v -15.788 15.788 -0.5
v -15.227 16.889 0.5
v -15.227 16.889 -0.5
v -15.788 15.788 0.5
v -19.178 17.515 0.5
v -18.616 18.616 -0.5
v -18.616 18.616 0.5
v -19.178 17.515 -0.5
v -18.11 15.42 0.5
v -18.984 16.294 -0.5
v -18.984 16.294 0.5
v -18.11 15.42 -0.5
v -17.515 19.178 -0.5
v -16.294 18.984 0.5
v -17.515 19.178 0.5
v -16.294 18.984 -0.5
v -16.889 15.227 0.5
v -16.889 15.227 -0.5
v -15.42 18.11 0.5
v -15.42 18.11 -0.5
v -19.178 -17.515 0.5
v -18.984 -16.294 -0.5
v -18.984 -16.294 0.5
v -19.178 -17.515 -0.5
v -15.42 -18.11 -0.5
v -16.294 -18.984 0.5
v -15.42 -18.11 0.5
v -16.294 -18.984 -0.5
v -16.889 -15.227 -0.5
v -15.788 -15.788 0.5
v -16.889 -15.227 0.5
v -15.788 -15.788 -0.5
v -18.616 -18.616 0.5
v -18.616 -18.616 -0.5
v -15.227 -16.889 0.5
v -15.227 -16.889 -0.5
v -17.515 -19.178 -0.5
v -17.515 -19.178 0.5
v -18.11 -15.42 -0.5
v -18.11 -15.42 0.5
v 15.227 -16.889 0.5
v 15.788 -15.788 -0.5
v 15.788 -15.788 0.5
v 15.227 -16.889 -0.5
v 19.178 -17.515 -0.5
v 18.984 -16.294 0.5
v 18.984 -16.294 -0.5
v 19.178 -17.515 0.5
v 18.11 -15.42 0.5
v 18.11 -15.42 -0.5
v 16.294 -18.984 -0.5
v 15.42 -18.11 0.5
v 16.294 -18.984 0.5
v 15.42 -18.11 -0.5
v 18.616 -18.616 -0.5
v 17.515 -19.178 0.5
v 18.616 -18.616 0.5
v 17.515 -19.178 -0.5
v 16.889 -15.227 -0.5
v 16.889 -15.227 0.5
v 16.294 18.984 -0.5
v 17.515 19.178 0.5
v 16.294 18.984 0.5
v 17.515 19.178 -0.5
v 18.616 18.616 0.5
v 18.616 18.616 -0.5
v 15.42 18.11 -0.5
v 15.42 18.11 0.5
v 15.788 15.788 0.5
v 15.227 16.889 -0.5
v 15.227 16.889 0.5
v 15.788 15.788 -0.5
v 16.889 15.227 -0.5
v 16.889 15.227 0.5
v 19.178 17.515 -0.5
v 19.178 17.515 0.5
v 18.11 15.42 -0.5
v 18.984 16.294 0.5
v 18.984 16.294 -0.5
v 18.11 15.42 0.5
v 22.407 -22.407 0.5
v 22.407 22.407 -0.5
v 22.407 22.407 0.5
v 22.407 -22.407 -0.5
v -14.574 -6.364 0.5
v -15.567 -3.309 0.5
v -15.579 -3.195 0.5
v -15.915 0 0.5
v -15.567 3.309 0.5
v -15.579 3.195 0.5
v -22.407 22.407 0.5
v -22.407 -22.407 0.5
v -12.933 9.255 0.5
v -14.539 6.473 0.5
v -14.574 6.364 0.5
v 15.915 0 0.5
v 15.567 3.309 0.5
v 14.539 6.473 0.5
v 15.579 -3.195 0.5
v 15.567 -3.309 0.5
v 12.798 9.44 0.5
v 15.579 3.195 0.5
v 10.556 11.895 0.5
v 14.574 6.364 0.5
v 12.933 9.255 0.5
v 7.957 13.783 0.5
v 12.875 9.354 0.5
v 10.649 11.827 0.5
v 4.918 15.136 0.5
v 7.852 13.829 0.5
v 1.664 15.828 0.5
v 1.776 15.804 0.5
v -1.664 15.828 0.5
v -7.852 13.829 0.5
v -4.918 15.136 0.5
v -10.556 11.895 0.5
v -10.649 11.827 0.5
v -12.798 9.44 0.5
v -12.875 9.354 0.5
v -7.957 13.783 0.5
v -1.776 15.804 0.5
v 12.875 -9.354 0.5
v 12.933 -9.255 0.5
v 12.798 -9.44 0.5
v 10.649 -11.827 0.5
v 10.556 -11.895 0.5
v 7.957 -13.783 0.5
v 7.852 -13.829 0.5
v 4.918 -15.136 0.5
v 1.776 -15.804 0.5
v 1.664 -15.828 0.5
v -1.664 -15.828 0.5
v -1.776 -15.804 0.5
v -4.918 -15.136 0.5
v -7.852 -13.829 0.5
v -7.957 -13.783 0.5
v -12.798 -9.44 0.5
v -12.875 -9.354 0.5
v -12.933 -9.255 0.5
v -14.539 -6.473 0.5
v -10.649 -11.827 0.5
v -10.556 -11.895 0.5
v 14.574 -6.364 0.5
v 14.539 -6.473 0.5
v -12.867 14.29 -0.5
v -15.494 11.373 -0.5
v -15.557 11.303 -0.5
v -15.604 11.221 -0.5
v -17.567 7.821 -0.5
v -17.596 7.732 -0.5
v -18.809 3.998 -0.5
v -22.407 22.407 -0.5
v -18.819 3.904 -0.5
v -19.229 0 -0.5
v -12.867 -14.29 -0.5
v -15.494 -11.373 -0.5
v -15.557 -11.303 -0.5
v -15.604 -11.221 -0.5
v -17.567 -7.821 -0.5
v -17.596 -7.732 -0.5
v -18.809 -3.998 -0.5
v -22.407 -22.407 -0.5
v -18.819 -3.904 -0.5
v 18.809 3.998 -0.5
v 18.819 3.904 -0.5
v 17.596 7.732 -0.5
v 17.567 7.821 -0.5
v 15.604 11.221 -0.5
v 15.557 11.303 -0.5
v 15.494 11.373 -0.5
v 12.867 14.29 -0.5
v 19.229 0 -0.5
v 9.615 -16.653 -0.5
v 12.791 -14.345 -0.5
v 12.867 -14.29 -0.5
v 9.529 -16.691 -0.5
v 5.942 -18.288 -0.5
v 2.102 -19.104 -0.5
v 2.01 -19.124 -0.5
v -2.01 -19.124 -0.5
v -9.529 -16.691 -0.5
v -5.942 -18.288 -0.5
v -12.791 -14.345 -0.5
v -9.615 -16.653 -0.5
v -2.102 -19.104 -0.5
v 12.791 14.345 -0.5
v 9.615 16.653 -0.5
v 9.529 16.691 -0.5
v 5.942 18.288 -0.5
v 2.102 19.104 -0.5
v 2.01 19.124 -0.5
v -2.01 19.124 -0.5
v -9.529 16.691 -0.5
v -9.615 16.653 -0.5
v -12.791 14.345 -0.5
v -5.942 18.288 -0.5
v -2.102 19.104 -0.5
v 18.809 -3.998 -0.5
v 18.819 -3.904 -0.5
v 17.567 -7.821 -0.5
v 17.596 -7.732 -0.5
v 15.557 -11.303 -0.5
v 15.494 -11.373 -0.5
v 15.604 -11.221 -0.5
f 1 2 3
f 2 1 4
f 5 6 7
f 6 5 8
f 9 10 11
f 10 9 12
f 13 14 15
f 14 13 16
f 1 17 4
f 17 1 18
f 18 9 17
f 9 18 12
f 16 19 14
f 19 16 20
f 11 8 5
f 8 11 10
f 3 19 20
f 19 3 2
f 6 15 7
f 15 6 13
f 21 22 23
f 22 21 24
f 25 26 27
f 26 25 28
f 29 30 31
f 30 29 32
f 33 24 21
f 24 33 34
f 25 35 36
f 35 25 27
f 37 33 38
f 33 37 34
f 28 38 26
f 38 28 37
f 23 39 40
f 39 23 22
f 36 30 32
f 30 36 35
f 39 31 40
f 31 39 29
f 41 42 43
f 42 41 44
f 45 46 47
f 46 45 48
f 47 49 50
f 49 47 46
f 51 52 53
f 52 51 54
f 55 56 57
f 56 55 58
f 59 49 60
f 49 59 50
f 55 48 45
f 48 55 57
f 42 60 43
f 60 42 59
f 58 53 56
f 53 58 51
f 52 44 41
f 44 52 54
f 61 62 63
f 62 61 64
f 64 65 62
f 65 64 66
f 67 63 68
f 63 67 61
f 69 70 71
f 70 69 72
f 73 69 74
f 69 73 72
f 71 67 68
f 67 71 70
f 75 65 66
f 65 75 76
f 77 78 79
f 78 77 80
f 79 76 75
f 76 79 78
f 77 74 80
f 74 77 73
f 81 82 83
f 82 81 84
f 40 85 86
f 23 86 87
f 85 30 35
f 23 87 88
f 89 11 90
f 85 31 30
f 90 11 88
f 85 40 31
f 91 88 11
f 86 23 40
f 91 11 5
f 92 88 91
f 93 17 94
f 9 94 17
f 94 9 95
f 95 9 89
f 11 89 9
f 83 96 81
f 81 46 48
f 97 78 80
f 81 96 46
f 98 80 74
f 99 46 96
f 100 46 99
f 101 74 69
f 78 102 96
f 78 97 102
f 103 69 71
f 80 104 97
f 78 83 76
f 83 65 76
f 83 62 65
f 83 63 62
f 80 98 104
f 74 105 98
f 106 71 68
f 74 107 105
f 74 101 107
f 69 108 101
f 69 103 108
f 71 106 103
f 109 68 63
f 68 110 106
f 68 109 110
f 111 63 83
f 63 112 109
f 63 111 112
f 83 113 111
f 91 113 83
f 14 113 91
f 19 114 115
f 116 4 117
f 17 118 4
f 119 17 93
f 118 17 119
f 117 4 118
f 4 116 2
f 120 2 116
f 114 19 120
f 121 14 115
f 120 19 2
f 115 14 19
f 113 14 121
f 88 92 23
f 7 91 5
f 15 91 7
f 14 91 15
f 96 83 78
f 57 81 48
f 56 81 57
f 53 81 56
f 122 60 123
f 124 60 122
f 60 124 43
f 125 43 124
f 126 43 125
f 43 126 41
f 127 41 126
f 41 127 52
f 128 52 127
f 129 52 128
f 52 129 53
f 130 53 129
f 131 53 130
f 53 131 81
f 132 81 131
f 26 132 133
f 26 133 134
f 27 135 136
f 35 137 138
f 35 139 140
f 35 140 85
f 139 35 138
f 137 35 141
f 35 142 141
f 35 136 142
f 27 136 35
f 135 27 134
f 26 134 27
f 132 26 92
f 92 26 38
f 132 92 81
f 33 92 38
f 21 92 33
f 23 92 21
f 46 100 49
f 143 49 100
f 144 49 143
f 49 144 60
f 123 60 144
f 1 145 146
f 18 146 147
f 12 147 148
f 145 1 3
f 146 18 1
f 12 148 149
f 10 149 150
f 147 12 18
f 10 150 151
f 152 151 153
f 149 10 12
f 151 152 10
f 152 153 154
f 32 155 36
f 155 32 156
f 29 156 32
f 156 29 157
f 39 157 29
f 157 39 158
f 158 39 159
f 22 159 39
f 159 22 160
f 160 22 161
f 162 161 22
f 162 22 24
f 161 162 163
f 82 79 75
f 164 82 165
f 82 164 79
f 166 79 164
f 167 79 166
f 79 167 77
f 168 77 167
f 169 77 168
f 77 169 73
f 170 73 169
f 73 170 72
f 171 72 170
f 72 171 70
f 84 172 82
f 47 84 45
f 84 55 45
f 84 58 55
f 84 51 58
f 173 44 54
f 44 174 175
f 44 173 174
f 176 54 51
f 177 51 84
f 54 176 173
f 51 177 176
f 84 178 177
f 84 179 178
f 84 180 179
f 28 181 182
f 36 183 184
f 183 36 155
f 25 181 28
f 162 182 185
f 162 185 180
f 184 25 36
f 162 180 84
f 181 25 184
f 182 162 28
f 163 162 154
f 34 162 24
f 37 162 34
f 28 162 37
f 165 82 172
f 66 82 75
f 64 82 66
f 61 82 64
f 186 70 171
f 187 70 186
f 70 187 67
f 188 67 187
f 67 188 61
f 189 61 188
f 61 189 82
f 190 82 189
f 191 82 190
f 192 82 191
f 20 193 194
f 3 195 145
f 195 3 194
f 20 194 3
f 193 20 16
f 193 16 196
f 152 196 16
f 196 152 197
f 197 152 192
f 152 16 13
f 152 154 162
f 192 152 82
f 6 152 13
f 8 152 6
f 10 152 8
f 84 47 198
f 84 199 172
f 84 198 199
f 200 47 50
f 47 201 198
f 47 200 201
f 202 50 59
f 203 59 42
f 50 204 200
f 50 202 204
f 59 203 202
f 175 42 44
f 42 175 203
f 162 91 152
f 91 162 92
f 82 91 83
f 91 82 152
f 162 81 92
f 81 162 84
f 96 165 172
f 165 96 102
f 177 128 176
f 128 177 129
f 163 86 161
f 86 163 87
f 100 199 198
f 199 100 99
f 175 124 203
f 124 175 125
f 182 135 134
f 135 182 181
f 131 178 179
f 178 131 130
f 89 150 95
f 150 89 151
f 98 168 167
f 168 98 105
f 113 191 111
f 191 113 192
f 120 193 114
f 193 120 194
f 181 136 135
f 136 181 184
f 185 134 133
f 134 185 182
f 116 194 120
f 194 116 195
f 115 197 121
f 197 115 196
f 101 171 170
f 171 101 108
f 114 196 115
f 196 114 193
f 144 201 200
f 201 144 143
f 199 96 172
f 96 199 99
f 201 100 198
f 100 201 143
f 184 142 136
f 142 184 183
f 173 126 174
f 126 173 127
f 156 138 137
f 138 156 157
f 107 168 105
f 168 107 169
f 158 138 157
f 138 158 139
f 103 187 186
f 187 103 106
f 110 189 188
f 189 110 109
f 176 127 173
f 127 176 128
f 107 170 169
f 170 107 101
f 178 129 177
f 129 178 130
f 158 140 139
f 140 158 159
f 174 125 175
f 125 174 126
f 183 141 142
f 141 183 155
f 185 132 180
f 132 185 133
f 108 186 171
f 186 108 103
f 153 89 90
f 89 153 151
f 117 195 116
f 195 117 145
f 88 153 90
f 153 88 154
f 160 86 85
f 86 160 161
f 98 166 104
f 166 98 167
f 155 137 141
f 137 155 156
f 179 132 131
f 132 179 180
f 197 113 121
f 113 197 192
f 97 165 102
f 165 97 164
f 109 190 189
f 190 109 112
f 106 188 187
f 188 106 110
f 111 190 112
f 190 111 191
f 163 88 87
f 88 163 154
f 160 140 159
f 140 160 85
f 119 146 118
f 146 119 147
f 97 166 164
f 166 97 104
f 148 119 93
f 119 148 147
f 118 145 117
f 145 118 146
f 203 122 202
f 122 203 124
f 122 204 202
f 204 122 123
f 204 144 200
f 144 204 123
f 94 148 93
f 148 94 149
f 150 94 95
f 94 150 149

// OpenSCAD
scaling = 1.067;

difference(){
    cube([42 * scaling, 42 * scaling, 1], true);
    cylinder(h = 10, r1 = 32 * scaling, center = true);
    
    for ( i = [1:4] ){
        rotate ([0,0,45+(90*i)]) {
            translate ([22.8 * scaling,0,0]) {
                cylinder(h = 10, r1 = 2, r2 = 2, center = true, $fn = 10);
            }
        }
    }
}
